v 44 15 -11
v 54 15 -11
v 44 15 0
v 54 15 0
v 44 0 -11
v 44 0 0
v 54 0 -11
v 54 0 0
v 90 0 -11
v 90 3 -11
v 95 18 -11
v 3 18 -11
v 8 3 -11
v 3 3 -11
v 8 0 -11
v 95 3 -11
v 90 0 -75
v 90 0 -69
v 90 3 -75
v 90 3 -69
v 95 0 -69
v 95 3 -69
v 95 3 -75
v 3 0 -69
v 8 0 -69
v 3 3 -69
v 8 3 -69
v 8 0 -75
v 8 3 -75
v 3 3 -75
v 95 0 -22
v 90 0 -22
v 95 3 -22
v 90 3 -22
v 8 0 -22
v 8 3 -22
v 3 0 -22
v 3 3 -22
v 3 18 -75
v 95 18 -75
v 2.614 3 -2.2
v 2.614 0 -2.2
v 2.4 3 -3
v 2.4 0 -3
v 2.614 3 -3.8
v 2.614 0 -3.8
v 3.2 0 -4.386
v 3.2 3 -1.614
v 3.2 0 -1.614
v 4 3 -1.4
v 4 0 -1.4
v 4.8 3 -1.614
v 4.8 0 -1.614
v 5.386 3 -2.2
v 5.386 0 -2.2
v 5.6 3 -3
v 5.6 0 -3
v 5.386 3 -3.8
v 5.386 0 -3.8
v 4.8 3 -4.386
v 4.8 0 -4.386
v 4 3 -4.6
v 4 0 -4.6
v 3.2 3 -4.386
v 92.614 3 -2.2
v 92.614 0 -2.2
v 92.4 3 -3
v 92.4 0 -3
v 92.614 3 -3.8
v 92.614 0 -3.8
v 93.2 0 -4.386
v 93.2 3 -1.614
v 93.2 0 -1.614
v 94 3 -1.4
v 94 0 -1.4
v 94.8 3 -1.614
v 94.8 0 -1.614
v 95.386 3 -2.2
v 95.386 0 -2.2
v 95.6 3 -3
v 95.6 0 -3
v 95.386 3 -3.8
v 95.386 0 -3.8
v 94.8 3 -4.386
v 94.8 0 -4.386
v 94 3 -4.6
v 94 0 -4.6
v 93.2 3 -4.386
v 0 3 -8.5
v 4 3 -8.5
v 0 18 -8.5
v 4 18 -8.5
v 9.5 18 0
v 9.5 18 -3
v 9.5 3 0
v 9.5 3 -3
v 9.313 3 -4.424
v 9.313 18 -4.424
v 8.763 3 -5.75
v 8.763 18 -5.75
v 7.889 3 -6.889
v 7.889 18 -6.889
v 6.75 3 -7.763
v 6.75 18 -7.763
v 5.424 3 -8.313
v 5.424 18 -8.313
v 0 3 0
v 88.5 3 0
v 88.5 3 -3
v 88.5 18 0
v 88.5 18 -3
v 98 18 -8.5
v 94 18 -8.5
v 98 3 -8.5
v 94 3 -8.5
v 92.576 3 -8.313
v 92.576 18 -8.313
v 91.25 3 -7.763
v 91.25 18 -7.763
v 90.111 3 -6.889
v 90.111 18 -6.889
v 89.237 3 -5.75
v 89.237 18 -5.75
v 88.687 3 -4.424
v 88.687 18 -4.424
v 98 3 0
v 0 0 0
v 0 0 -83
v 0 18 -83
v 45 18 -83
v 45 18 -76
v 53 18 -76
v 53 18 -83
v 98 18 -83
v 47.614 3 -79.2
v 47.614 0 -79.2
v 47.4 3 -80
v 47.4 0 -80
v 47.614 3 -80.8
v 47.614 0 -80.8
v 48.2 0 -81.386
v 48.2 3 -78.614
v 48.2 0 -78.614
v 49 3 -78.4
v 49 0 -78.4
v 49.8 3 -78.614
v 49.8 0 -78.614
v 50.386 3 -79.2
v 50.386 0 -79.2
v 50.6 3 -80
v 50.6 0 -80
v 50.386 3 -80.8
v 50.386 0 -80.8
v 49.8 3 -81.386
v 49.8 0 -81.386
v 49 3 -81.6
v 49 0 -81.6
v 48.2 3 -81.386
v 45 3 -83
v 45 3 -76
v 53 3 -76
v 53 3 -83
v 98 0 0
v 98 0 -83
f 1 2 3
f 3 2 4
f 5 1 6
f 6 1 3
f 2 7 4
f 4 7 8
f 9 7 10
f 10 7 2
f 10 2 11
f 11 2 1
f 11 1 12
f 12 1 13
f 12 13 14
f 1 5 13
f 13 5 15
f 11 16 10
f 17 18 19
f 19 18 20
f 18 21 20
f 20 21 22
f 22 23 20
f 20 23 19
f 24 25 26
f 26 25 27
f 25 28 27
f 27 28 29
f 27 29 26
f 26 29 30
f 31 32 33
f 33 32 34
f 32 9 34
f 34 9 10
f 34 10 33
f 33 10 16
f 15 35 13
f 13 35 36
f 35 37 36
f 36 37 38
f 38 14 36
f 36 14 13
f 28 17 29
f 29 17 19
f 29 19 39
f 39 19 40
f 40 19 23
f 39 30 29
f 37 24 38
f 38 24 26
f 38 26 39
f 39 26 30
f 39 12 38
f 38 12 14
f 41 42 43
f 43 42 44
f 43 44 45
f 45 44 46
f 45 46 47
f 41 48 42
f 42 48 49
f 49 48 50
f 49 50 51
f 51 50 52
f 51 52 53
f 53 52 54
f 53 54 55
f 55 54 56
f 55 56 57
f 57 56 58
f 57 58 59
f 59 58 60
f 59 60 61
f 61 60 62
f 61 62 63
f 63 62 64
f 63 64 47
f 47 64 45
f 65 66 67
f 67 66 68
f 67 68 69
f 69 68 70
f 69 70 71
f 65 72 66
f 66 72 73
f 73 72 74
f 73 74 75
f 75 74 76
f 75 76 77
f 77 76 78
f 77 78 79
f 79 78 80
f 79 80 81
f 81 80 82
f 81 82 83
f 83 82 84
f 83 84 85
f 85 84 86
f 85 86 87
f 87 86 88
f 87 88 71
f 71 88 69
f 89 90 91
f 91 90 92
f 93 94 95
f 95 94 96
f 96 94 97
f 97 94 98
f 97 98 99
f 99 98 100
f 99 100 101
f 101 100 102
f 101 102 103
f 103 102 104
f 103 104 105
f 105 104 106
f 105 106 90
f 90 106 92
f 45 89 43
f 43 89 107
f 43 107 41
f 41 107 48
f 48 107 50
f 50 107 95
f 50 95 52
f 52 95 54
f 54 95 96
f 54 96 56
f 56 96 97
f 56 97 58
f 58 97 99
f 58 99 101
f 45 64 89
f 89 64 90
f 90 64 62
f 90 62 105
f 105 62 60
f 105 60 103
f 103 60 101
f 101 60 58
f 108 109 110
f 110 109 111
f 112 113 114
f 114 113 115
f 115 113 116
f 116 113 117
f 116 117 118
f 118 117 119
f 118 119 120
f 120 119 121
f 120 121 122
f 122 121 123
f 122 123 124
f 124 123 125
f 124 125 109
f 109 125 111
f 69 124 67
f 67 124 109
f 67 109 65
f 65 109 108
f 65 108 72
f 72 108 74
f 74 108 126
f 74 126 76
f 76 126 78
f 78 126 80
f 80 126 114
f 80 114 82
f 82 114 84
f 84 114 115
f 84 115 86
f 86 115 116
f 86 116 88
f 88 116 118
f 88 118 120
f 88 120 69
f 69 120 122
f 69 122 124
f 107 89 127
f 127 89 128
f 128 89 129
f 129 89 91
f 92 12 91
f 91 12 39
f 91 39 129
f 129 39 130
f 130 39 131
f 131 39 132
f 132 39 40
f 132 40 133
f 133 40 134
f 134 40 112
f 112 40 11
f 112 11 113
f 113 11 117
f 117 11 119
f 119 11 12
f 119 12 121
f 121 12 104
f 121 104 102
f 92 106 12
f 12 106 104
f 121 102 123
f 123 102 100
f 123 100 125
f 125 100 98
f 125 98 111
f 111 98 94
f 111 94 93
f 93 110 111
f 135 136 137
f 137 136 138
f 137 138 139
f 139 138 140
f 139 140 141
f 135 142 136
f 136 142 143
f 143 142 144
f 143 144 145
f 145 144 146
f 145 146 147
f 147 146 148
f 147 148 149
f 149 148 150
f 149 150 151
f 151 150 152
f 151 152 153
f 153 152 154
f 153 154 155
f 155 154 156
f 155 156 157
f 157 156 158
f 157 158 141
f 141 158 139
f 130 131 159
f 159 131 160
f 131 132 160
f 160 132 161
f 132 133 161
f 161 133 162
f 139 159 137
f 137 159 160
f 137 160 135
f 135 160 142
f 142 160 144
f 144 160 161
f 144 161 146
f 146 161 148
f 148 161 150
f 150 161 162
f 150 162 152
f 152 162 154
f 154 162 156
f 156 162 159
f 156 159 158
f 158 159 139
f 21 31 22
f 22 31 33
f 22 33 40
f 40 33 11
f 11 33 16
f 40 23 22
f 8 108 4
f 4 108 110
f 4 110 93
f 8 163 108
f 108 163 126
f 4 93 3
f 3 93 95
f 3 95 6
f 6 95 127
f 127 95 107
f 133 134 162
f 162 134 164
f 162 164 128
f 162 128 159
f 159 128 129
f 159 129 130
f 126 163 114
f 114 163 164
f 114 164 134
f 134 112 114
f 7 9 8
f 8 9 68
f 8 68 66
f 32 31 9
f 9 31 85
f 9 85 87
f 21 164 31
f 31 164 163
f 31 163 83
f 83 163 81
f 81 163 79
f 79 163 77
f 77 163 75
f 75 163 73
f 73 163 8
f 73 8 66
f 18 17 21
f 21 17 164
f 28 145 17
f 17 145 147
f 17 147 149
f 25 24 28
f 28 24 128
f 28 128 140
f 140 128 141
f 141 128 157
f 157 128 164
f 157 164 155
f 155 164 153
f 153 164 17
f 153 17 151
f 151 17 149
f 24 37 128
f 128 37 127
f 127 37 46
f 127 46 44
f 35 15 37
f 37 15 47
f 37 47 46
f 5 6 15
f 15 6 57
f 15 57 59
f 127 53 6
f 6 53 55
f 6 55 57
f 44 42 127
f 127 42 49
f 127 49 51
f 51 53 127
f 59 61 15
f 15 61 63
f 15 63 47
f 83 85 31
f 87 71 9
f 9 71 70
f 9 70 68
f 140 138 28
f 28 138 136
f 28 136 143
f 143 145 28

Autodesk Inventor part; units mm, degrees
ref_plane "YZ Plane" through (0, 0, 0) normal (1, 0, 0) x (0, 1, 0)
ref_plane "XZ Plane" through (0, 0, 0) normal (0, 1, 0) x (-1, 0, 0)
ref_plane "XY Plane" through (0, 0, 0) normal (0, 0, 1) x (1, 0, 0)
sketch "Szkic1" plane through (0, 0, 0) normal (0, 1, 0) x (-1, 0, 0)
  line L0 (0, 0) -> (-98, 0)
  line L1 (-98, 0) -> (-98, -83)
  line L2 (-98, -83) -> (0, -83)
  line L3 (0, -83) -> (0, 0)
  line L4 (-3, -11) -> (-95, -11)
  line L5 (-95, -11) -> (-95, -75)
  line L6 (-95, -75) -> (-3, -75)
  line L7 (-3, -75) -> (-3, -11)
  dimension "d0" = 83
  dimension "d1" = 98
  dimension "d2" = 92
  dimension "d3" = 3
  dimension "d4" = 8
  dimension "d5" = 64
extrude "Wyciągnięcie proste1" add sketch "Szkic1" along normal blind 18
sketch "Szkic2" plane through (0, 0, 0) normal (0, 0, 1) x (1, 0, 0)
  line L0 (0, 0) -> (49, 0) construction
  line L1 (49, 0) -> (49, 15) construction
  line L2 (44, 15) -> (54, 15)
  line L3 (44, 15) -> (44, 0)
  line L4 (44, 0) -> (54, 0)
  line L5 (54, 0) -> (54, 15)
  dimension "d8" = 15
  dimension "d9" = 49
  dimension "d64" = 10
sketch "Szkic3" plane through (0, 18, 0) normal (0, 1, 0) x (1, 0, 0)
  line L0 (0, 0) -> (0, 83) construction
  line L1 (0, 83) -> (49, 83) construction
  line L2 (49, 83) -> (49, 80) construction
  line L3 (49, 80) -> (49, 76) construction
  circle A0 centre (49, 80) radius 1.6
  line L4 (45, 76) -> (53, 76)
  line L5 (45, 76) -> (45, 83)
  line L6 (53, 76) -> (53, 83)
  line L7 (53, 83) -> (45, 83)
  dimension "d20" = 3
  dimension "d21" = 4
  dimension "d22" = 49
  dimension "d23" = 83
  dimension "d24" = 3.2
  dimension "d25" = 8
extrude "Wyciągnięcie proste3" cut sketch "Szkic3" against normal blind 15 contours A0 | L5 L7 L6 L4
extrude "Wyciągnięcie proste4" cut sketch "Szkic3" against normal through all contours A0
sketch "Szkic4" plane through (0, 18, 0) normal (0, 1, 0) x (1, 0, 0)
  line L0 (0, 0) -> (0, 3)
  line L1 (0, 3) -> (4, 3)
  circle A0 centre (4, 3) radius 1.6
  circle A1 centre (4, 3) radius 5.5
  line L2 (9.5, 3) -> (9.5, -5)
  line L3 (4, 8.5) -> (-4, 8.5)
  line L4 (-4, 8.5) -> (-4, -5)
  line L5 (-4, -5) -> (9.5, -5)
  line L6 (0, 0) -> (98, 0) construction
  line L7 (98, 0) -> (98, 3) construction
  line L8 (98, 3) -> (94, 3) construction
  circle A2 centre (94, 3) radius 1.6
  circle A3 centre (94, 3) radius 5.5
  line L9 (94, 8.5) -> (102, 8.5)
  line L10 (102, 8.5) -> (102, -5)
  line L11 (102, -5) -> (88.5, -5)
  line L12 (88.5, -5) -> (88.5, 3)
  dimension "d30" = 4
  dimension "d31" = 3
  dimension "d32" = 3.2
  dimension "d33" = 11
  dimension "d34" = 8
  dimension "d35" = 8
  dimension "d36" = 98
  dimension "d37" = 3
  dimension "d38" = 4
  dimension "d39" = 11
  dimension "d40" = 3.2
  dimension "d41" = 8
  dimension "d42" = 8
extrude "Wyciągnięcie proste5" cut sketch "Szkic4" against normal blind 15 contours A0 | A1 | L2 L5 L4 L3 A1 | A2 | A3 | A3 L9 L10 L11 L12
extrude "Wyciągnięcie proste6" cut sketch "Szkic4" against normal through all contours A0 | A2
sketch "Szkic5" plane through (0, 0, 0) normal (0, -1, 0) x (1, 0, 0)
  line L0 (0, 0) -> (0, -11) construction
  line L1 (0, -11) -> (0, -75) construction
  line L2 (0, -75) -> (3, -75) construction
  line L3 (0, -11) -> (3, -11) construction
  line L4 (0, 0) -> (98, 0) construction
  line L5 (98, 0) -> (98, -11) construction
  line L6 (98, -11) -> (95, -11) construction
  line L7 (98, -11) -> (98, -75) construction
  line L8 (98, -75) -> (95, -75) construction
  line L9 (3, -11) -> (8, -11)
  line L10 (8, -11) -> (8, -22)
  line L11 (8, -22) -> (3, -22)
  line L12 (3, -22) -> (3, -11)
  line L13 (3, -75) -> (8, -75)
  line L14 (8, -75) -> (8, -69)
  line L15 (8, -69) -> (3, -69)
  line L16 (3, -69) -> (3, -75)
  line L17 (95, -11) -> (90, -11)
  line L18 (90, -11) -> (90, -22)
  line L19 (90, -22) -> (95, -22)
  line L20 (95, -22) -> (95, -11)
  line L21 (95, -75) -> (90, -75)
  line L22 (90, -75) -> (90, -69)
  line L23 (90, -69) -> (95, -69)
  line L24 (95, -69) -> (95, -75)
  dimension "d47" = 3
  dimension "d48" = 3
  dimension "d49" = 11
  dimension "d50" = 64
  dimension "d51" = 98
  dimension "d52" = 11
  dimension "d53" = 3
  dimension "d54" = 3
  dimension "d55" = 64
  dimension "d56" = 11
  dimension "d57" = 5
  dimension "d58" = 6
  dimension "d59" = 5
  dimension "d60" = 6
  dimension "d61" = 11
extrude "Wyciągnięcie proste7" add sketch "Szkic5" against normal blind 3
extrude "Wyciągnięcie proste8" cut sketch "Szkic2" against normal blind 15
